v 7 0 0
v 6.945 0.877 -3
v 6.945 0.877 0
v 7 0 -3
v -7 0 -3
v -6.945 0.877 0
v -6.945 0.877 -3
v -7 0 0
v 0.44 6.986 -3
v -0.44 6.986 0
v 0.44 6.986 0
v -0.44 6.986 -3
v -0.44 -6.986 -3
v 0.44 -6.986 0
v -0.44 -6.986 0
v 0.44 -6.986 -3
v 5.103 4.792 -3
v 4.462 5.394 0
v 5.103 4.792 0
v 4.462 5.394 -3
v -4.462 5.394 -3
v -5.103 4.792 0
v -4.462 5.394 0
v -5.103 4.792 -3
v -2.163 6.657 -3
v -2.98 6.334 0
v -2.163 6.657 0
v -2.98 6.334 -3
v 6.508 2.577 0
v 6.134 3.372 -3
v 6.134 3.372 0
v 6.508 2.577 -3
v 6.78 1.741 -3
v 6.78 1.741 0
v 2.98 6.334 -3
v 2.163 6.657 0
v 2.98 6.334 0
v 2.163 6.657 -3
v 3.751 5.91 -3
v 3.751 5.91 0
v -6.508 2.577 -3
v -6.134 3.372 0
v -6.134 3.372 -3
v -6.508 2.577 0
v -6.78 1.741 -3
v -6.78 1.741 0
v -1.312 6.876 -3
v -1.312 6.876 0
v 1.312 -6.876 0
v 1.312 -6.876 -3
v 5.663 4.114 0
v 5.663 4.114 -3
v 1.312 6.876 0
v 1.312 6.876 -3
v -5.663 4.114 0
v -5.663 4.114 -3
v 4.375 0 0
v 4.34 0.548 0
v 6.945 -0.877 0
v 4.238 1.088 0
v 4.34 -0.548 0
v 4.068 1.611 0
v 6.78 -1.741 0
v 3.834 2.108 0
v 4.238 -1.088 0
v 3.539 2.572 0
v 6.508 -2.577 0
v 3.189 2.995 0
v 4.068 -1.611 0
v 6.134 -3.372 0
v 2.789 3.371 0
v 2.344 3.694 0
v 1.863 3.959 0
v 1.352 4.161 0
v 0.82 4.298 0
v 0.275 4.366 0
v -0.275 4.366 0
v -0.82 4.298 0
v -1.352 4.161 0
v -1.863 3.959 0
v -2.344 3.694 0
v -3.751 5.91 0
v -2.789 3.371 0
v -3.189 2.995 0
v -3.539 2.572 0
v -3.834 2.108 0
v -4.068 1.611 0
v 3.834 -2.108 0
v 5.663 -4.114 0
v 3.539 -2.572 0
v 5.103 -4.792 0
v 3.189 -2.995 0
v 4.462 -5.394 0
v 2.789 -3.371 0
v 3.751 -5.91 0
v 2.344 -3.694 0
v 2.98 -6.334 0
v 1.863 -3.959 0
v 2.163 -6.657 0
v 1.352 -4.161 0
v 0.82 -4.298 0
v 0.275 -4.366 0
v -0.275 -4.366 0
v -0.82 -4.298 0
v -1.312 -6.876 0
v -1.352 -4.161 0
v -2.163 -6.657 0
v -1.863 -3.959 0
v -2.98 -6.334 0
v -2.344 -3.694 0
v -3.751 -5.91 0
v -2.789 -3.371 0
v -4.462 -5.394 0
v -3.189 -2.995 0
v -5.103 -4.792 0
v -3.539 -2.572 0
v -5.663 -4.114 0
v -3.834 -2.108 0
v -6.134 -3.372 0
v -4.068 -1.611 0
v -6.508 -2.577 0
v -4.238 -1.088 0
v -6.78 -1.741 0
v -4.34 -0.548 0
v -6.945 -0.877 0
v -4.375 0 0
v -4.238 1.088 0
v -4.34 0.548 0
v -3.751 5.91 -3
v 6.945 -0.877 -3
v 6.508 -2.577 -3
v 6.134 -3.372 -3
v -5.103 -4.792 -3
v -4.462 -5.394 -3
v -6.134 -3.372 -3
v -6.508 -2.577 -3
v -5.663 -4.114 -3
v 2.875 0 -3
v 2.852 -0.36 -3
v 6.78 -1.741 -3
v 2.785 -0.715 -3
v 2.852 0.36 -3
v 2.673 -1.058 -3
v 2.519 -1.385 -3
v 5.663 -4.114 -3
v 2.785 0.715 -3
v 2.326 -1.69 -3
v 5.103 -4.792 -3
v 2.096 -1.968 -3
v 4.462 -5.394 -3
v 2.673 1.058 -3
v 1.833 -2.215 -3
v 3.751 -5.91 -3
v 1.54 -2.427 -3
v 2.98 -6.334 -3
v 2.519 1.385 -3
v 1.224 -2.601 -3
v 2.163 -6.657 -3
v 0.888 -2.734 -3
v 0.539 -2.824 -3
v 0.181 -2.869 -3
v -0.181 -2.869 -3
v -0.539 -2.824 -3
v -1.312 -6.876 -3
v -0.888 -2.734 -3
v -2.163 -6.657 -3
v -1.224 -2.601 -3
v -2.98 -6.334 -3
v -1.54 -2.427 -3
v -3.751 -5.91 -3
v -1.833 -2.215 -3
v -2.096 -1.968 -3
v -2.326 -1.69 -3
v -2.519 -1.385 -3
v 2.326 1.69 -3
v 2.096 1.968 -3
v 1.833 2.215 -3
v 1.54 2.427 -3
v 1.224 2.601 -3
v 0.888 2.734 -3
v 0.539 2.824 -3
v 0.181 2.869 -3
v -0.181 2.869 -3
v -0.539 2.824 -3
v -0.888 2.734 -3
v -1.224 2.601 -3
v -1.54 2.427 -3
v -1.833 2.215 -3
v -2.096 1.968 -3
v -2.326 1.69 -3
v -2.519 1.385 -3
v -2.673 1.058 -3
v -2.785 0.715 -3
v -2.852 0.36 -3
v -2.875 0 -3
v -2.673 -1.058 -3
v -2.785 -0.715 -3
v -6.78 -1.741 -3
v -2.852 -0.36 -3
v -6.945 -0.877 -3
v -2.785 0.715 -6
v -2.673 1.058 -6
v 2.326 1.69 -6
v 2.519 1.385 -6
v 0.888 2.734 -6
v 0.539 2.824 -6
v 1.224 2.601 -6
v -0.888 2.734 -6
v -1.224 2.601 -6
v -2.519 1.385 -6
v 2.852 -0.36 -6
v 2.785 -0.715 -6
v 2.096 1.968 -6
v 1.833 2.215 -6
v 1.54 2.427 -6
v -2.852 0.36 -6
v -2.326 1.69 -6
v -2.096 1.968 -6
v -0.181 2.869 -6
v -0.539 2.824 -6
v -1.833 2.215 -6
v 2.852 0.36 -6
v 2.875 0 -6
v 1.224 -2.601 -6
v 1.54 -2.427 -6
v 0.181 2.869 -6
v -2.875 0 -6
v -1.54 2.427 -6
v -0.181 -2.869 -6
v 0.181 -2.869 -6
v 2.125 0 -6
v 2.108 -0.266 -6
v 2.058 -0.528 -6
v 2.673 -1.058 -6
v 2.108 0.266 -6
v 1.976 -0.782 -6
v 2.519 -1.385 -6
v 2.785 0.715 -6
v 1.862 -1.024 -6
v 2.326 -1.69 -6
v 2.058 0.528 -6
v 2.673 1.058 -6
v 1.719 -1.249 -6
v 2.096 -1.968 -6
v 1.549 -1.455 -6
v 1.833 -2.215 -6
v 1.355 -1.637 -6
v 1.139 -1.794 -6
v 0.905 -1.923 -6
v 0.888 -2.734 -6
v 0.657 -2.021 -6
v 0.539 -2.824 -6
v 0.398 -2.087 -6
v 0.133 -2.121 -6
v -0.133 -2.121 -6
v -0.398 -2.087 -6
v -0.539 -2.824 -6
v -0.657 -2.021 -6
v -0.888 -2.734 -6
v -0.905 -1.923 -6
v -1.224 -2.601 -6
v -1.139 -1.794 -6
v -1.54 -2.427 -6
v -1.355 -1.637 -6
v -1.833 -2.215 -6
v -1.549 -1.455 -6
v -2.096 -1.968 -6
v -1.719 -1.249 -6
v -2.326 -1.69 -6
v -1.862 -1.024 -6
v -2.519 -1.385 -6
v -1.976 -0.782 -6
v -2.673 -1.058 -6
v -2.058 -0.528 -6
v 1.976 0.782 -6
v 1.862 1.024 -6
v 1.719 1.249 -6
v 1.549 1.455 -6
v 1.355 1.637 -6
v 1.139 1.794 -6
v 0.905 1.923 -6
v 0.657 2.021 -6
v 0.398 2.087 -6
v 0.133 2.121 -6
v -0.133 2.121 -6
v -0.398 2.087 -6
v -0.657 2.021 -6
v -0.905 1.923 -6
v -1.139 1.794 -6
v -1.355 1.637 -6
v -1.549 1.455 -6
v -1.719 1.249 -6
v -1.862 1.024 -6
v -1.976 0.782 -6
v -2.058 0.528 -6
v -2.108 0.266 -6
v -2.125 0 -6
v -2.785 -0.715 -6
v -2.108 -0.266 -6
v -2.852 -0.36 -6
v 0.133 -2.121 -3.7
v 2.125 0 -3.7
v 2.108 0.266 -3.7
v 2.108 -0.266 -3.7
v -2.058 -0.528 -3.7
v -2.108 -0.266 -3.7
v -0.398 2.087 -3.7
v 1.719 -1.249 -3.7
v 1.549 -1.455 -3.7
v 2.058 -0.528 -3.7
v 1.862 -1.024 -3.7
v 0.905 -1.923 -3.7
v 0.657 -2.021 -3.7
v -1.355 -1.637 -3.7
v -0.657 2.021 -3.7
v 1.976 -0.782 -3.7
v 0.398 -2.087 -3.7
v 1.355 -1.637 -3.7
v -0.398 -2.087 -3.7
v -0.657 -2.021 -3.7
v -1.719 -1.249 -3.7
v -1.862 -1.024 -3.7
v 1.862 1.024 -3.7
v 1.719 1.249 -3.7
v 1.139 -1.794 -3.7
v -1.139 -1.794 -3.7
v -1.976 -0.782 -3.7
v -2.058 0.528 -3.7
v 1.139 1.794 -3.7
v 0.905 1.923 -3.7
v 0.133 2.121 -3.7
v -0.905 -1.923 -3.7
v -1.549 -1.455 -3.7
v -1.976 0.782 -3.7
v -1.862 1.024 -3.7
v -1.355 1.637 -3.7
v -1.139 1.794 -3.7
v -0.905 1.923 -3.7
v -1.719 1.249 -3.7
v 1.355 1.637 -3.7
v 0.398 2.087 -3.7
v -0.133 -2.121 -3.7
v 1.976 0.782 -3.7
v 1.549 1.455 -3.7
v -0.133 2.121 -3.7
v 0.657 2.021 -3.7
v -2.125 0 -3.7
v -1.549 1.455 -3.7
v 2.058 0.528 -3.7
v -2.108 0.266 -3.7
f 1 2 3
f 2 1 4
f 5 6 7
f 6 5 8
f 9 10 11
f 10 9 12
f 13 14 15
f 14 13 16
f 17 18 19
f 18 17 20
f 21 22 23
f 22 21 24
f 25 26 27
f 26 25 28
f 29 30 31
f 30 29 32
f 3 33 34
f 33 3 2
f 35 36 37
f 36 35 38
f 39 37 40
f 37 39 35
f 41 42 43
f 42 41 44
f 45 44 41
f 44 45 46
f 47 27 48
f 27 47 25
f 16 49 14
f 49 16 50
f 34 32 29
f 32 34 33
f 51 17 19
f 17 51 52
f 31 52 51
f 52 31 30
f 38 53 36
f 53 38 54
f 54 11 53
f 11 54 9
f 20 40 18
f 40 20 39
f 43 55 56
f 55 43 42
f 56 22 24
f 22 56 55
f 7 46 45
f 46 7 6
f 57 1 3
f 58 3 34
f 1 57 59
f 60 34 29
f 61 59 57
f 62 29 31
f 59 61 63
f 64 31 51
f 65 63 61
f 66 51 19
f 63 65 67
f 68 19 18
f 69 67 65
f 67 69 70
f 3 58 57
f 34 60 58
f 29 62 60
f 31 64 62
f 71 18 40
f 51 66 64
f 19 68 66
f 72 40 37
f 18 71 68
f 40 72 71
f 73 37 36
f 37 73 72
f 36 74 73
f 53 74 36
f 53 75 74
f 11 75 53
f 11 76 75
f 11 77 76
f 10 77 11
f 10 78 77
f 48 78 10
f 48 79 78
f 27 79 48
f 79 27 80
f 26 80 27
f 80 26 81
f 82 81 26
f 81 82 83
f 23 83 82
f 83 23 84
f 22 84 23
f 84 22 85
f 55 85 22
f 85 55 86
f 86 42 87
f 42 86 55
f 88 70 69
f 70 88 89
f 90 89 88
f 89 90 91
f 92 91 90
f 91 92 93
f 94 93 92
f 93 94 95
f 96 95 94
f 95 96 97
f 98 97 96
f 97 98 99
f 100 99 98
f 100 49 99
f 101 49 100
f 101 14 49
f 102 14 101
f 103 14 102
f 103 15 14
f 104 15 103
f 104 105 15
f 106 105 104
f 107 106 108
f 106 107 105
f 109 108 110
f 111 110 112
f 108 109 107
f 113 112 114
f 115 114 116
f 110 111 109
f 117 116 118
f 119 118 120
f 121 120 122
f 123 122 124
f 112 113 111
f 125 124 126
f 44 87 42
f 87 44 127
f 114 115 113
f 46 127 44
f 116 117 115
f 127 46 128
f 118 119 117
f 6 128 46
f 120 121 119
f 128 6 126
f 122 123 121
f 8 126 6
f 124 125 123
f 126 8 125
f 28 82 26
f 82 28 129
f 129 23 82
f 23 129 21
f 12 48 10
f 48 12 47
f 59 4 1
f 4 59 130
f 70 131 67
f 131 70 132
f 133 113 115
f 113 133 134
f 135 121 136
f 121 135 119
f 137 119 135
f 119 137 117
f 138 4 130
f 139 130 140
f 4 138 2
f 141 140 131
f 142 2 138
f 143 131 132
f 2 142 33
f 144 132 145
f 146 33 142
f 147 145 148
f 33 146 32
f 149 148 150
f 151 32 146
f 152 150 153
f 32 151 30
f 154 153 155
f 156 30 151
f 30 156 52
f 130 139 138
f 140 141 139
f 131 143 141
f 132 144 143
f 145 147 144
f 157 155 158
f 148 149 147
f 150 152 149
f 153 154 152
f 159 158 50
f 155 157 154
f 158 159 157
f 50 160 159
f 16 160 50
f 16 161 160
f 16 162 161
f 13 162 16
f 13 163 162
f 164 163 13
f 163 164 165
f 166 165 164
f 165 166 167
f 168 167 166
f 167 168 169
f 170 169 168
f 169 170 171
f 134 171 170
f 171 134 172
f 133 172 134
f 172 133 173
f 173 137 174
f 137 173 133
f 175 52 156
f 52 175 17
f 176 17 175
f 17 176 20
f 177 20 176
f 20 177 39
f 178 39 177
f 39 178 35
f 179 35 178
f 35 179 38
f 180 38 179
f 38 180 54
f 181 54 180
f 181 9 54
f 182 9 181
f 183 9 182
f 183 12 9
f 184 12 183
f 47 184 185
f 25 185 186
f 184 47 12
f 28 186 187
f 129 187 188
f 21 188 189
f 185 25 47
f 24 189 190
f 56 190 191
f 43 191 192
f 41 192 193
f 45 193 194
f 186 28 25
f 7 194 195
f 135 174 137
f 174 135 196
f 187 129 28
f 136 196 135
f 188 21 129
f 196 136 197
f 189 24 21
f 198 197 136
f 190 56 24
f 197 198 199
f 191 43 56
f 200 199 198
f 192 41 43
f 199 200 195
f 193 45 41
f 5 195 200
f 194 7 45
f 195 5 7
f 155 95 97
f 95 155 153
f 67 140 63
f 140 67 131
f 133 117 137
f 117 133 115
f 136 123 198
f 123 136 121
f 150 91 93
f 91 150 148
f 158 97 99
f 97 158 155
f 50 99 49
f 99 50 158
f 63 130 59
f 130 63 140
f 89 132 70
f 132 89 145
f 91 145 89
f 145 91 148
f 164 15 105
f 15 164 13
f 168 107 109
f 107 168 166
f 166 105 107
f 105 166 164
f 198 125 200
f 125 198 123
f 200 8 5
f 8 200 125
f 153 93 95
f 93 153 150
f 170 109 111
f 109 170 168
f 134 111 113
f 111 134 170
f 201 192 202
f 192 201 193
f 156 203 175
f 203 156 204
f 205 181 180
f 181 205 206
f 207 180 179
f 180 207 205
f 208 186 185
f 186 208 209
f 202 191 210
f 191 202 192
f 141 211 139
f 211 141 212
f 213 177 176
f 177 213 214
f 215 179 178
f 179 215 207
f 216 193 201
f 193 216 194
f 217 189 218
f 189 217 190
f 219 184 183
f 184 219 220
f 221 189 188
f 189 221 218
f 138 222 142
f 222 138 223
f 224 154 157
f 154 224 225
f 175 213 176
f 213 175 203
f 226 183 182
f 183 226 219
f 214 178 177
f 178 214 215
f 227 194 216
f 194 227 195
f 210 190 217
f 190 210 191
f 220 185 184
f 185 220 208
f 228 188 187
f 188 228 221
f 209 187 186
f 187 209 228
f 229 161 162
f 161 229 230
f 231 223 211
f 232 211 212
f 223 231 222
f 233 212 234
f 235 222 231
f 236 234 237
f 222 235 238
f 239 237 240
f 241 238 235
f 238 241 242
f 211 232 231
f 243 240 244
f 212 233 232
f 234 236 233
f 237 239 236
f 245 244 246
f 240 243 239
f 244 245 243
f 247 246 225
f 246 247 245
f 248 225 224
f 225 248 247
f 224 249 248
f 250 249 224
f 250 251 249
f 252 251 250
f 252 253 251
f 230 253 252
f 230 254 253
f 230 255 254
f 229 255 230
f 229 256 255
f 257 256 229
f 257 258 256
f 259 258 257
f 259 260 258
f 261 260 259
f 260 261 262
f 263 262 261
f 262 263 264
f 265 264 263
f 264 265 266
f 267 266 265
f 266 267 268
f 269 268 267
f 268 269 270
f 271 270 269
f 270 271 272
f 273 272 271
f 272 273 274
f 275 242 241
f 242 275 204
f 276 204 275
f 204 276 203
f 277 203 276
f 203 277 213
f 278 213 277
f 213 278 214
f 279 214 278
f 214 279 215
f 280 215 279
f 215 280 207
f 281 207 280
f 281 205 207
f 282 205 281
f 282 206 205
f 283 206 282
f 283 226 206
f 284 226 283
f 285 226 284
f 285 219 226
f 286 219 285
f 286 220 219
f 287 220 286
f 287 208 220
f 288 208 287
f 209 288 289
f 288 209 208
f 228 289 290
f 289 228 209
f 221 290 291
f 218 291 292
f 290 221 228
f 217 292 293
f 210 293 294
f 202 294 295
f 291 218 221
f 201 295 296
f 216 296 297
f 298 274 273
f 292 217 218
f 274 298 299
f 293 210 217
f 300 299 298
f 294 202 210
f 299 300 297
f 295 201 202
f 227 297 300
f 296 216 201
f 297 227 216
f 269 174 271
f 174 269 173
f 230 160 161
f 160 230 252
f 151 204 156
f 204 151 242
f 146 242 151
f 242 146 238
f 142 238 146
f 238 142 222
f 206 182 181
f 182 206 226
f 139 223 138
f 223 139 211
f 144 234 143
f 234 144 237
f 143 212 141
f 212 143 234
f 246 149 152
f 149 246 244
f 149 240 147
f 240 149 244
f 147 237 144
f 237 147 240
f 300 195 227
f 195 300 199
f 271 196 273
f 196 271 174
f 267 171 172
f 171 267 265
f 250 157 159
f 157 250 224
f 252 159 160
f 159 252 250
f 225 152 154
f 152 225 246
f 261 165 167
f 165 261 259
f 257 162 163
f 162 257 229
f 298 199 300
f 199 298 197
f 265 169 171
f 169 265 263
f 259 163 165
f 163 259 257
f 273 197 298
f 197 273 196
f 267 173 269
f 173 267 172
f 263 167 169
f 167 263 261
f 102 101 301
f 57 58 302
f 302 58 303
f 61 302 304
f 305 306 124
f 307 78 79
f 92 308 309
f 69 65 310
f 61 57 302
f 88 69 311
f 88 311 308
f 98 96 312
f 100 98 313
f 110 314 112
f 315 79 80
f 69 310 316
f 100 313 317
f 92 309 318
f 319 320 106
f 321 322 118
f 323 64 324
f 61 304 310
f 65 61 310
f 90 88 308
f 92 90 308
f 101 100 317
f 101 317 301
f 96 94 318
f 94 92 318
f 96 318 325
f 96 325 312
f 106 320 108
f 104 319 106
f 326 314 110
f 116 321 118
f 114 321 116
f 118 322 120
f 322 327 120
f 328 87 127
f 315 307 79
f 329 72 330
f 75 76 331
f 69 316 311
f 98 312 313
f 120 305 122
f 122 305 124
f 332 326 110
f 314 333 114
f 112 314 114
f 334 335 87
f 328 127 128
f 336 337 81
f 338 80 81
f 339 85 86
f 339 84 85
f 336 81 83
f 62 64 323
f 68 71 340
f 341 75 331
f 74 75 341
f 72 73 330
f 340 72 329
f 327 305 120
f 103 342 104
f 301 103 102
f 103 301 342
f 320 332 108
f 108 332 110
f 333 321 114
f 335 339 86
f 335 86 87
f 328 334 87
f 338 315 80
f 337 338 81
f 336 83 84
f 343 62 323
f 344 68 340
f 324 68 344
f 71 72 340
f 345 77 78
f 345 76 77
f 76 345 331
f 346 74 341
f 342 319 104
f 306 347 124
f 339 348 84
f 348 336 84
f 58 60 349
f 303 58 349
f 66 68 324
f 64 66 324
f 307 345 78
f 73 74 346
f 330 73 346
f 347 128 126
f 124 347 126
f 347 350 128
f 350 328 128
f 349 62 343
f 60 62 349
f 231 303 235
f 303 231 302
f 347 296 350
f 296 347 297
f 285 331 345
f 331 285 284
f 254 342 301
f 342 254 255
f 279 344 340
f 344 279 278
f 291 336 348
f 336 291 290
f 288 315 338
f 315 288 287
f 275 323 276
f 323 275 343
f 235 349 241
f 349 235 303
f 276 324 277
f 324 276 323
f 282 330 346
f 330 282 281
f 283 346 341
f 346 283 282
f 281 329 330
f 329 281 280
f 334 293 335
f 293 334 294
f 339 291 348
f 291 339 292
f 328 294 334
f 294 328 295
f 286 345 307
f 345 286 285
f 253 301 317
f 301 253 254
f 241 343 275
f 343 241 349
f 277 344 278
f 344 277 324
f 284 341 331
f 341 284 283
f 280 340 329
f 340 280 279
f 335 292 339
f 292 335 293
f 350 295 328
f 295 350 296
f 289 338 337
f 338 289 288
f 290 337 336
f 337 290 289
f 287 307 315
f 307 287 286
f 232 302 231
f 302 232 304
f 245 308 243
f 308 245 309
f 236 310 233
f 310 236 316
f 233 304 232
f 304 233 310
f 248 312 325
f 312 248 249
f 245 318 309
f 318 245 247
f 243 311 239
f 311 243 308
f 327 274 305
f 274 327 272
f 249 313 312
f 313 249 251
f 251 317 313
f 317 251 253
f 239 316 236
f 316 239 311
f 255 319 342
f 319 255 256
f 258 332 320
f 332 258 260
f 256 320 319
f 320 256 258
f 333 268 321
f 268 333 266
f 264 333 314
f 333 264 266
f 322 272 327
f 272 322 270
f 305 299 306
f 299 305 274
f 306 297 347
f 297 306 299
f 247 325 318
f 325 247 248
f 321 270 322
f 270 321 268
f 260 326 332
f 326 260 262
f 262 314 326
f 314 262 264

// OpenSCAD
$fn = 50;


difference() {
	union() {
		translate(v = [0, 0, -3.0000000000]) {
			cylinder(h = 3, r = 7.0000000000);
		}
		translate(v = [0, 0, -6.0000000000]) {
			cylinder(h = 6, r = 2.8750000000);
		}
	}
	union() {
		translate(v = [0, 0, 0]) {
			rotate(a = [0, 0, 0]) {
				difference() {
					union() {
						translate(v = [0, 0, -6.0000000000]) {
							cylinder(h = 6, r = 2.0000000000);
						}
						translate(v = [0, 0, -3.7000000000]) {
							cylinder(h = 3.7000000000, r1 = 2.1250000000, r2 = 4.3750000000);
						}
						translate(v = [0, 0, -6.0000000000]) {
							cylinder(h = 6, r = 2.1250000000);
						}
						translate(v = [0, 0, -6.0000000000]) {
							cylinder(h = 6, r = 2.0000000000);
						}
					}
					union();
				}
			}
		}
	}
}
